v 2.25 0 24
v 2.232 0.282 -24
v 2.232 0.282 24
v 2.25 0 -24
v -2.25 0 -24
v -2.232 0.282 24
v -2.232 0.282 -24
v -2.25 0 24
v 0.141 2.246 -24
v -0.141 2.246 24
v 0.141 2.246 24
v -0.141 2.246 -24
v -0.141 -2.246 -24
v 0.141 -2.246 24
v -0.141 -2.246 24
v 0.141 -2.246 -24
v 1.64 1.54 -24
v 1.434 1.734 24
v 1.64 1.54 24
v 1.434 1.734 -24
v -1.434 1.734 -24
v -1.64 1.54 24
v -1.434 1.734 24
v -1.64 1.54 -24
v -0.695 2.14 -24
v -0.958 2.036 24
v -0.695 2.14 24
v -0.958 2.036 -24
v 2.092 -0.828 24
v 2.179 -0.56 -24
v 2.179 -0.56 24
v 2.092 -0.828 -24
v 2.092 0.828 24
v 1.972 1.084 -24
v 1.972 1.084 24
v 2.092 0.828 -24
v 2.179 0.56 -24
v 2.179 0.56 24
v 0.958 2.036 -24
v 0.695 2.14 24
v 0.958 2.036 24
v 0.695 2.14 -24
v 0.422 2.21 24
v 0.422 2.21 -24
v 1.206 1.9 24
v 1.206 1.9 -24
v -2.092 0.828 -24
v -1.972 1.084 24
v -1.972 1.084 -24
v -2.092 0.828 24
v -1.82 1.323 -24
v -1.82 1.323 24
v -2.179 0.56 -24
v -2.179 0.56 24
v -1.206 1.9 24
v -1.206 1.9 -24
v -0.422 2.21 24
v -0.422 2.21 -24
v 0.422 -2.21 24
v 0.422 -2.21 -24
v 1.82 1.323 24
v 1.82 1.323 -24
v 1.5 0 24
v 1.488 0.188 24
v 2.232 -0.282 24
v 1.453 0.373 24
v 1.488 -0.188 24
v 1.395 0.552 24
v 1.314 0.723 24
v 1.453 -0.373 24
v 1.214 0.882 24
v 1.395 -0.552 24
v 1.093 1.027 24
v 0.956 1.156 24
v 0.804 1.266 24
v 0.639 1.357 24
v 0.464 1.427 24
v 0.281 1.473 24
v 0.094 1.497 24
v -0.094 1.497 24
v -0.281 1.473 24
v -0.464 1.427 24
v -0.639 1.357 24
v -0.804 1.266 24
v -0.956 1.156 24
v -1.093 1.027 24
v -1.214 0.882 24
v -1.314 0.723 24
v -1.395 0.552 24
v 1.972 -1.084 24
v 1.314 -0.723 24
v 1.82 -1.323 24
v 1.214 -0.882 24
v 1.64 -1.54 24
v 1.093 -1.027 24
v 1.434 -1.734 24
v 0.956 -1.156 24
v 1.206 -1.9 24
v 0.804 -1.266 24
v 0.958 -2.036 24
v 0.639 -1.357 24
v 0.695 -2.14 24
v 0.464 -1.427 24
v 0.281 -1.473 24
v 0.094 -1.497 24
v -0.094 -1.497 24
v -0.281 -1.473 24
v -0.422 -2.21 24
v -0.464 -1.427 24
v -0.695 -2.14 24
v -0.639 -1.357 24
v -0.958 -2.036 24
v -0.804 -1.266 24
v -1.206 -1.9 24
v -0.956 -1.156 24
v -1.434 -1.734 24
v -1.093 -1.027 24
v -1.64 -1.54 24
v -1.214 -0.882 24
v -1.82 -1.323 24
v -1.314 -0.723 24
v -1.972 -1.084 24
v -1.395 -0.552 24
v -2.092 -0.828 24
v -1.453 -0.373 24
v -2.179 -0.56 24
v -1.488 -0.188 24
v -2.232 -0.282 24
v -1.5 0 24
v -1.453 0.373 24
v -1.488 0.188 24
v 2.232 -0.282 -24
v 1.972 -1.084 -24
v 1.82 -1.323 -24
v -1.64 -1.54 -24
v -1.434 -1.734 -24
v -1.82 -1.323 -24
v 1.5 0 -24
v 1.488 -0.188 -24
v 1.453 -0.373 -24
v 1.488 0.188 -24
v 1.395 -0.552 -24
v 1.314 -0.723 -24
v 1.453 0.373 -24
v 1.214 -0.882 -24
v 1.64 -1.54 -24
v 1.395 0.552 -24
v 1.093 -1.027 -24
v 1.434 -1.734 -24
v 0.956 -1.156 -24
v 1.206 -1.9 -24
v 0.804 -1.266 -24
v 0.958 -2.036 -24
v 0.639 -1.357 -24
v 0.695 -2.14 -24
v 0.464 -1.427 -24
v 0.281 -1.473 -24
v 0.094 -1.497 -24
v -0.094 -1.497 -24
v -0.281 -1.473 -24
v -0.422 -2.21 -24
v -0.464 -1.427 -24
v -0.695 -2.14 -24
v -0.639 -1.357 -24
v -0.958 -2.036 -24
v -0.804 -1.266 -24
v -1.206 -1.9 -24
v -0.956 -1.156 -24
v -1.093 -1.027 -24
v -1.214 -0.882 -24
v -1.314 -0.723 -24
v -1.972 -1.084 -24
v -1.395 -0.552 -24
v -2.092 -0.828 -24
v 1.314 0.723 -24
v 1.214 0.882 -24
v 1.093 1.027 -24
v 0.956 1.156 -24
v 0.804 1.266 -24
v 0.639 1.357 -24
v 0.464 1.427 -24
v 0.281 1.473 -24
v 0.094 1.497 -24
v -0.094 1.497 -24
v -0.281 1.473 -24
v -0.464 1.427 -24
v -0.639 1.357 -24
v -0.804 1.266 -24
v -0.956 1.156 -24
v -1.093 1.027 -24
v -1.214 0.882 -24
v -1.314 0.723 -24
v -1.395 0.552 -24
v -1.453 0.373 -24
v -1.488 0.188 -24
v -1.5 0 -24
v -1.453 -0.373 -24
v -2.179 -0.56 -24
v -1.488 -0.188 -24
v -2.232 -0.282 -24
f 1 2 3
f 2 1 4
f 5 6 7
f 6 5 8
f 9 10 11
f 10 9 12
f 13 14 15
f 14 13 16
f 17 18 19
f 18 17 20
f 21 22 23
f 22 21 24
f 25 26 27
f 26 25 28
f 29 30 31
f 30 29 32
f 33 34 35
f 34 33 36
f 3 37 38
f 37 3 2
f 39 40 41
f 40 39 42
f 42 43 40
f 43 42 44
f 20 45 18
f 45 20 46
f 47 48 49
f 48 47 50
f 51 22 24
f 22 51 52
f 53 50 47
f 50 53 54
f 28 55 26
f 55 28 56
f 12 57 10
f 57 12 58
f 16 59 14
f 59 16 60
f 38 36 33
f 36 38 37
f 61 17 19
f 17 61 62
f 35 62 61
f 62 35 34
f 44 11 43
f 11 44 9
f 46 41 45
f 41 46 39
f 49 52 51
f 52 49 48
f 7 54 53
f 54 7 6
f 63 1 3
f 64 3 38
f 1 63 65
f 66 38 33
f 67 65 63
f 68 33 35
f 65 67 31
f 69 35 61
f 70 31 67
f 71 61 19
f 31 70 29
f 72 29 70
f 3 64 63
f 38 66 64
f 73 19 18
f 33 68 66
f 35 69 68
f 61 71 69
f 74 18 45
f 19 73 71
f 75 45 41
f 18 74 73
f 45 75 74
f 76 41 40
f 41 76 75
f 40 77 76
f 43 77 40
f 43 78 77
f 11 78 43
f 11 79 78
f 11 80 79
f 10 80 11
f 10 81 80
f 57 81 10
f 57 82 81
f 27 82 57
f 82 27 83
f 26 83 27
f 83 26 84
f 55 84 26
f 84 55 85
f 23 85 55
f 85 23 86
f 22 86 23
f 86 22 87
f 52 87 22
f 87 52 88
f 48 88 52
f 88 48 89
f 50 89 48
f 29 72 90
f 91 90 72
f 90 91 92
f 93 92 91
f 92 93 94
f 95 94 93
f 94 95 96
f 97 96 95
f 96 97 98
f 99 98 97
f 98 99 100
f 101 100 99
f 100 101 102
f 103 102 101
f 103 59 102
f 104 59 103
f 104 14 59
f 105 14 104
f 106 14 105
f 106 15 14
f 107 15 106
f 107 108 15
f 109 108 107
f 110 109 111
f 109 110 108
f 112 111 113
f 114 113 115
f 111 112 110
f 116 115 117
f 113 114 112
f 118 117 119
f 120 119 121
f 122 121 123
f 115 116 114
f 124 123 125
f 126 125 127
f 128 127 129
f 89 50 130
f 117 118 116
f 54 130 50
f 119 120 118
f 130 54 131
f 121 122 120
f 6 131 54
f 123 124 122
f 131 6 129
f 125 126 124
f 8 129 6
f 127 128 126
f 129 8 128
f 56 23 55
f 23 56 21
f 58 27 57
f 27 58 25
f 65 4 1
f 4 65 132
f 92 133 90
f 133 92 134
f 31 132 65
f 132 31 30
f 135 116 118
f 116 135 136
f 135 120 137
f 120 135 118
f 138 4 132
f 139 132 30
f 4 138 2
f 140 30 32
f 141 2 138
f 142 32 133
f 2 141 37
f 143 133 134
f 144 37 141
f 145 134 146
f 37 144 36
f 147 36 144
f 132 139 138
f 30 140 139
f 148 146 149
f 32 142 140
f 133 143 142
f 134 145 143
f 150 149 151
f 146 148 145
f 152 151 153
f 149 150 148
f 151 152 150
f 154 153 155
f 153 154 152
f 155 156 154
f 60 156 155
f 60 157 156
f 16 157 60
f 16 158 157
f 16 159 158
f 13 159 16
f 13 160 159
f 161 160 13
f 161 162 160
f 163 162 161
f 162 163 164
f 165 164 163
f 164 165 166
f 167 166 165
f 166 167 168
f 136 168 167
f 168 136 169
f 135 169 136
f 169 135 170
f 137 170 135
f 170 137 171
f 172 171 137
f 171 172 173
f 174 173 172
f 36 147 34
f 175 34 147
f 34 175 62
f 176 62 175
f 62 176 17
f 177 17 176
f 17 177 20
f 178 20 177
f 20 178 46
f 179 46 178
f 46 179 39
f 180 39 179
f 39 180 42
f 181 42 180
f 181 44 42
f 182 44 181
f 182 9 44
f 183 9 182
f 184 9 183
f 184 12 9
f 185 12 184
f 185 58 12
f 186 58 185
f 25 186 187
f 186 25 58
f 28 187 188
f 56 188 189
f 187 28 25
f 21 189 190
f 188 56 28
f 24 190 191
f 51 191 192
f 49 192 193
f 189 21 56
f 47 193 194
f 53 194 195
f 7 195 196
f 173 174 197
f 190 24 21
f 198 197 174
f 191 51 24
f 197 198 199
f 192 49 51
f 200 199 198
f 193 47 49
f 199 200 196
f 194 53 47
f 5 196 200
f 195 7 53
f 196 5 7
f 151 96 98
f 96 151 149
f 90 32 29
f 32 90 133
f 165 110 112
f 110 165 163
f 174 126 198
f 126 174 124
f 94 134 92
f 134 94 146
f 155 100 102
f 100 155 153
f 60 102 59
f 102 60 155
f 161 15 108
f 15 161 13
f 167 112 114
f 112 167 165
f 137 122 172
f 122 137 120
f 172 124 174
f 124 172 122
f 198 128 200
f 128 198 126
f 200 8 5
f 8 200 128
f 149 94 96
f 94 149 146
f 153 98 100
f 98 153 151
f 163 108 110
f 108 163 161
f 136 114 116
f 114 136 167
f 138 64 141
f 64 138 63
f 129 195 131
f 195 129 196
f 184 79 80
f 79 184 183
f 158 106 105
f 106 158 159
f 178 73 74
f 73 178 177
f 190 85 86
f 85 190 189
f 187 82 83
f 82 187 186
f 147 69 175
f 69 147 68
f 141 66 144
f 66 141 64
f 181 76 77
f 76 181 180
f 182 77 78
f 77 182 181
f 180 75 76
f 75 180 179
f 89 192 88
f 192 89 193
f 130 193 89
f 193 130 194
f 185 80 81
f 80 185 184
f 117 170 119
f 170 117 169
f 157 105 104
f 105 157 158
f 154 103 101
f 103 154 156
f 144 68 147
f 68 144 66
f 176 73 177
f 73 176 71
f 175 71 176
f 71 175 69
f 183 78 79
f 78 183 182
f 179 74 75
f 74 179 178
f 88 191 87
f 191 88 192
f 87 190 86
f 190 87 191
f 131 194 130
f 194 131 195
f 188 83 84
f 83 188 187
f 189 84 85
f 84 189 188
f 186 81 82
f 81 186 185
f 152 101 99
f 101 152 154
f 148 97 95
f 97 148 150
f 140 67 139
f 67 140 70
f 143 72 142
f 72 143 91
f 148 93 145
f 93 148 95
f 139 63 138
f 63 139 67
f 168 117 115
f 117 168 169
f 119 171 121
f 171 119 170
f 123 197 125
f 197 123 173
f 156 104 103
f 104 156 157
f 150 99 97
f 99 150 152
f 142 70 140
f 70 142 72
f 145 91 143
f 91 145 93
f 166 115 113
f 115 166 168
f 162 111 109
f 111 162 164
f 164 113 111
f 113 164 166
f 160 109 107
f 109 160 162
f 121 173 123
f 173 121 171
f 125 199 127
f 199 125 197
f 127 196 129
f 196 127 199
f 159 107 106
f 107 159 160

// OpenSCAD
$fn = 50;


difference() {
	union() {
		translate(v = [0, 0, -24.0000000000]) {
			cylinder(h = 48, r = 2.2500000000);
		}
	}
	union() {
		translate(v = [0, 0, -100.0000000000]) {
			cylinder(h = 200, r = 1.5000000000);
		}
	}
}
